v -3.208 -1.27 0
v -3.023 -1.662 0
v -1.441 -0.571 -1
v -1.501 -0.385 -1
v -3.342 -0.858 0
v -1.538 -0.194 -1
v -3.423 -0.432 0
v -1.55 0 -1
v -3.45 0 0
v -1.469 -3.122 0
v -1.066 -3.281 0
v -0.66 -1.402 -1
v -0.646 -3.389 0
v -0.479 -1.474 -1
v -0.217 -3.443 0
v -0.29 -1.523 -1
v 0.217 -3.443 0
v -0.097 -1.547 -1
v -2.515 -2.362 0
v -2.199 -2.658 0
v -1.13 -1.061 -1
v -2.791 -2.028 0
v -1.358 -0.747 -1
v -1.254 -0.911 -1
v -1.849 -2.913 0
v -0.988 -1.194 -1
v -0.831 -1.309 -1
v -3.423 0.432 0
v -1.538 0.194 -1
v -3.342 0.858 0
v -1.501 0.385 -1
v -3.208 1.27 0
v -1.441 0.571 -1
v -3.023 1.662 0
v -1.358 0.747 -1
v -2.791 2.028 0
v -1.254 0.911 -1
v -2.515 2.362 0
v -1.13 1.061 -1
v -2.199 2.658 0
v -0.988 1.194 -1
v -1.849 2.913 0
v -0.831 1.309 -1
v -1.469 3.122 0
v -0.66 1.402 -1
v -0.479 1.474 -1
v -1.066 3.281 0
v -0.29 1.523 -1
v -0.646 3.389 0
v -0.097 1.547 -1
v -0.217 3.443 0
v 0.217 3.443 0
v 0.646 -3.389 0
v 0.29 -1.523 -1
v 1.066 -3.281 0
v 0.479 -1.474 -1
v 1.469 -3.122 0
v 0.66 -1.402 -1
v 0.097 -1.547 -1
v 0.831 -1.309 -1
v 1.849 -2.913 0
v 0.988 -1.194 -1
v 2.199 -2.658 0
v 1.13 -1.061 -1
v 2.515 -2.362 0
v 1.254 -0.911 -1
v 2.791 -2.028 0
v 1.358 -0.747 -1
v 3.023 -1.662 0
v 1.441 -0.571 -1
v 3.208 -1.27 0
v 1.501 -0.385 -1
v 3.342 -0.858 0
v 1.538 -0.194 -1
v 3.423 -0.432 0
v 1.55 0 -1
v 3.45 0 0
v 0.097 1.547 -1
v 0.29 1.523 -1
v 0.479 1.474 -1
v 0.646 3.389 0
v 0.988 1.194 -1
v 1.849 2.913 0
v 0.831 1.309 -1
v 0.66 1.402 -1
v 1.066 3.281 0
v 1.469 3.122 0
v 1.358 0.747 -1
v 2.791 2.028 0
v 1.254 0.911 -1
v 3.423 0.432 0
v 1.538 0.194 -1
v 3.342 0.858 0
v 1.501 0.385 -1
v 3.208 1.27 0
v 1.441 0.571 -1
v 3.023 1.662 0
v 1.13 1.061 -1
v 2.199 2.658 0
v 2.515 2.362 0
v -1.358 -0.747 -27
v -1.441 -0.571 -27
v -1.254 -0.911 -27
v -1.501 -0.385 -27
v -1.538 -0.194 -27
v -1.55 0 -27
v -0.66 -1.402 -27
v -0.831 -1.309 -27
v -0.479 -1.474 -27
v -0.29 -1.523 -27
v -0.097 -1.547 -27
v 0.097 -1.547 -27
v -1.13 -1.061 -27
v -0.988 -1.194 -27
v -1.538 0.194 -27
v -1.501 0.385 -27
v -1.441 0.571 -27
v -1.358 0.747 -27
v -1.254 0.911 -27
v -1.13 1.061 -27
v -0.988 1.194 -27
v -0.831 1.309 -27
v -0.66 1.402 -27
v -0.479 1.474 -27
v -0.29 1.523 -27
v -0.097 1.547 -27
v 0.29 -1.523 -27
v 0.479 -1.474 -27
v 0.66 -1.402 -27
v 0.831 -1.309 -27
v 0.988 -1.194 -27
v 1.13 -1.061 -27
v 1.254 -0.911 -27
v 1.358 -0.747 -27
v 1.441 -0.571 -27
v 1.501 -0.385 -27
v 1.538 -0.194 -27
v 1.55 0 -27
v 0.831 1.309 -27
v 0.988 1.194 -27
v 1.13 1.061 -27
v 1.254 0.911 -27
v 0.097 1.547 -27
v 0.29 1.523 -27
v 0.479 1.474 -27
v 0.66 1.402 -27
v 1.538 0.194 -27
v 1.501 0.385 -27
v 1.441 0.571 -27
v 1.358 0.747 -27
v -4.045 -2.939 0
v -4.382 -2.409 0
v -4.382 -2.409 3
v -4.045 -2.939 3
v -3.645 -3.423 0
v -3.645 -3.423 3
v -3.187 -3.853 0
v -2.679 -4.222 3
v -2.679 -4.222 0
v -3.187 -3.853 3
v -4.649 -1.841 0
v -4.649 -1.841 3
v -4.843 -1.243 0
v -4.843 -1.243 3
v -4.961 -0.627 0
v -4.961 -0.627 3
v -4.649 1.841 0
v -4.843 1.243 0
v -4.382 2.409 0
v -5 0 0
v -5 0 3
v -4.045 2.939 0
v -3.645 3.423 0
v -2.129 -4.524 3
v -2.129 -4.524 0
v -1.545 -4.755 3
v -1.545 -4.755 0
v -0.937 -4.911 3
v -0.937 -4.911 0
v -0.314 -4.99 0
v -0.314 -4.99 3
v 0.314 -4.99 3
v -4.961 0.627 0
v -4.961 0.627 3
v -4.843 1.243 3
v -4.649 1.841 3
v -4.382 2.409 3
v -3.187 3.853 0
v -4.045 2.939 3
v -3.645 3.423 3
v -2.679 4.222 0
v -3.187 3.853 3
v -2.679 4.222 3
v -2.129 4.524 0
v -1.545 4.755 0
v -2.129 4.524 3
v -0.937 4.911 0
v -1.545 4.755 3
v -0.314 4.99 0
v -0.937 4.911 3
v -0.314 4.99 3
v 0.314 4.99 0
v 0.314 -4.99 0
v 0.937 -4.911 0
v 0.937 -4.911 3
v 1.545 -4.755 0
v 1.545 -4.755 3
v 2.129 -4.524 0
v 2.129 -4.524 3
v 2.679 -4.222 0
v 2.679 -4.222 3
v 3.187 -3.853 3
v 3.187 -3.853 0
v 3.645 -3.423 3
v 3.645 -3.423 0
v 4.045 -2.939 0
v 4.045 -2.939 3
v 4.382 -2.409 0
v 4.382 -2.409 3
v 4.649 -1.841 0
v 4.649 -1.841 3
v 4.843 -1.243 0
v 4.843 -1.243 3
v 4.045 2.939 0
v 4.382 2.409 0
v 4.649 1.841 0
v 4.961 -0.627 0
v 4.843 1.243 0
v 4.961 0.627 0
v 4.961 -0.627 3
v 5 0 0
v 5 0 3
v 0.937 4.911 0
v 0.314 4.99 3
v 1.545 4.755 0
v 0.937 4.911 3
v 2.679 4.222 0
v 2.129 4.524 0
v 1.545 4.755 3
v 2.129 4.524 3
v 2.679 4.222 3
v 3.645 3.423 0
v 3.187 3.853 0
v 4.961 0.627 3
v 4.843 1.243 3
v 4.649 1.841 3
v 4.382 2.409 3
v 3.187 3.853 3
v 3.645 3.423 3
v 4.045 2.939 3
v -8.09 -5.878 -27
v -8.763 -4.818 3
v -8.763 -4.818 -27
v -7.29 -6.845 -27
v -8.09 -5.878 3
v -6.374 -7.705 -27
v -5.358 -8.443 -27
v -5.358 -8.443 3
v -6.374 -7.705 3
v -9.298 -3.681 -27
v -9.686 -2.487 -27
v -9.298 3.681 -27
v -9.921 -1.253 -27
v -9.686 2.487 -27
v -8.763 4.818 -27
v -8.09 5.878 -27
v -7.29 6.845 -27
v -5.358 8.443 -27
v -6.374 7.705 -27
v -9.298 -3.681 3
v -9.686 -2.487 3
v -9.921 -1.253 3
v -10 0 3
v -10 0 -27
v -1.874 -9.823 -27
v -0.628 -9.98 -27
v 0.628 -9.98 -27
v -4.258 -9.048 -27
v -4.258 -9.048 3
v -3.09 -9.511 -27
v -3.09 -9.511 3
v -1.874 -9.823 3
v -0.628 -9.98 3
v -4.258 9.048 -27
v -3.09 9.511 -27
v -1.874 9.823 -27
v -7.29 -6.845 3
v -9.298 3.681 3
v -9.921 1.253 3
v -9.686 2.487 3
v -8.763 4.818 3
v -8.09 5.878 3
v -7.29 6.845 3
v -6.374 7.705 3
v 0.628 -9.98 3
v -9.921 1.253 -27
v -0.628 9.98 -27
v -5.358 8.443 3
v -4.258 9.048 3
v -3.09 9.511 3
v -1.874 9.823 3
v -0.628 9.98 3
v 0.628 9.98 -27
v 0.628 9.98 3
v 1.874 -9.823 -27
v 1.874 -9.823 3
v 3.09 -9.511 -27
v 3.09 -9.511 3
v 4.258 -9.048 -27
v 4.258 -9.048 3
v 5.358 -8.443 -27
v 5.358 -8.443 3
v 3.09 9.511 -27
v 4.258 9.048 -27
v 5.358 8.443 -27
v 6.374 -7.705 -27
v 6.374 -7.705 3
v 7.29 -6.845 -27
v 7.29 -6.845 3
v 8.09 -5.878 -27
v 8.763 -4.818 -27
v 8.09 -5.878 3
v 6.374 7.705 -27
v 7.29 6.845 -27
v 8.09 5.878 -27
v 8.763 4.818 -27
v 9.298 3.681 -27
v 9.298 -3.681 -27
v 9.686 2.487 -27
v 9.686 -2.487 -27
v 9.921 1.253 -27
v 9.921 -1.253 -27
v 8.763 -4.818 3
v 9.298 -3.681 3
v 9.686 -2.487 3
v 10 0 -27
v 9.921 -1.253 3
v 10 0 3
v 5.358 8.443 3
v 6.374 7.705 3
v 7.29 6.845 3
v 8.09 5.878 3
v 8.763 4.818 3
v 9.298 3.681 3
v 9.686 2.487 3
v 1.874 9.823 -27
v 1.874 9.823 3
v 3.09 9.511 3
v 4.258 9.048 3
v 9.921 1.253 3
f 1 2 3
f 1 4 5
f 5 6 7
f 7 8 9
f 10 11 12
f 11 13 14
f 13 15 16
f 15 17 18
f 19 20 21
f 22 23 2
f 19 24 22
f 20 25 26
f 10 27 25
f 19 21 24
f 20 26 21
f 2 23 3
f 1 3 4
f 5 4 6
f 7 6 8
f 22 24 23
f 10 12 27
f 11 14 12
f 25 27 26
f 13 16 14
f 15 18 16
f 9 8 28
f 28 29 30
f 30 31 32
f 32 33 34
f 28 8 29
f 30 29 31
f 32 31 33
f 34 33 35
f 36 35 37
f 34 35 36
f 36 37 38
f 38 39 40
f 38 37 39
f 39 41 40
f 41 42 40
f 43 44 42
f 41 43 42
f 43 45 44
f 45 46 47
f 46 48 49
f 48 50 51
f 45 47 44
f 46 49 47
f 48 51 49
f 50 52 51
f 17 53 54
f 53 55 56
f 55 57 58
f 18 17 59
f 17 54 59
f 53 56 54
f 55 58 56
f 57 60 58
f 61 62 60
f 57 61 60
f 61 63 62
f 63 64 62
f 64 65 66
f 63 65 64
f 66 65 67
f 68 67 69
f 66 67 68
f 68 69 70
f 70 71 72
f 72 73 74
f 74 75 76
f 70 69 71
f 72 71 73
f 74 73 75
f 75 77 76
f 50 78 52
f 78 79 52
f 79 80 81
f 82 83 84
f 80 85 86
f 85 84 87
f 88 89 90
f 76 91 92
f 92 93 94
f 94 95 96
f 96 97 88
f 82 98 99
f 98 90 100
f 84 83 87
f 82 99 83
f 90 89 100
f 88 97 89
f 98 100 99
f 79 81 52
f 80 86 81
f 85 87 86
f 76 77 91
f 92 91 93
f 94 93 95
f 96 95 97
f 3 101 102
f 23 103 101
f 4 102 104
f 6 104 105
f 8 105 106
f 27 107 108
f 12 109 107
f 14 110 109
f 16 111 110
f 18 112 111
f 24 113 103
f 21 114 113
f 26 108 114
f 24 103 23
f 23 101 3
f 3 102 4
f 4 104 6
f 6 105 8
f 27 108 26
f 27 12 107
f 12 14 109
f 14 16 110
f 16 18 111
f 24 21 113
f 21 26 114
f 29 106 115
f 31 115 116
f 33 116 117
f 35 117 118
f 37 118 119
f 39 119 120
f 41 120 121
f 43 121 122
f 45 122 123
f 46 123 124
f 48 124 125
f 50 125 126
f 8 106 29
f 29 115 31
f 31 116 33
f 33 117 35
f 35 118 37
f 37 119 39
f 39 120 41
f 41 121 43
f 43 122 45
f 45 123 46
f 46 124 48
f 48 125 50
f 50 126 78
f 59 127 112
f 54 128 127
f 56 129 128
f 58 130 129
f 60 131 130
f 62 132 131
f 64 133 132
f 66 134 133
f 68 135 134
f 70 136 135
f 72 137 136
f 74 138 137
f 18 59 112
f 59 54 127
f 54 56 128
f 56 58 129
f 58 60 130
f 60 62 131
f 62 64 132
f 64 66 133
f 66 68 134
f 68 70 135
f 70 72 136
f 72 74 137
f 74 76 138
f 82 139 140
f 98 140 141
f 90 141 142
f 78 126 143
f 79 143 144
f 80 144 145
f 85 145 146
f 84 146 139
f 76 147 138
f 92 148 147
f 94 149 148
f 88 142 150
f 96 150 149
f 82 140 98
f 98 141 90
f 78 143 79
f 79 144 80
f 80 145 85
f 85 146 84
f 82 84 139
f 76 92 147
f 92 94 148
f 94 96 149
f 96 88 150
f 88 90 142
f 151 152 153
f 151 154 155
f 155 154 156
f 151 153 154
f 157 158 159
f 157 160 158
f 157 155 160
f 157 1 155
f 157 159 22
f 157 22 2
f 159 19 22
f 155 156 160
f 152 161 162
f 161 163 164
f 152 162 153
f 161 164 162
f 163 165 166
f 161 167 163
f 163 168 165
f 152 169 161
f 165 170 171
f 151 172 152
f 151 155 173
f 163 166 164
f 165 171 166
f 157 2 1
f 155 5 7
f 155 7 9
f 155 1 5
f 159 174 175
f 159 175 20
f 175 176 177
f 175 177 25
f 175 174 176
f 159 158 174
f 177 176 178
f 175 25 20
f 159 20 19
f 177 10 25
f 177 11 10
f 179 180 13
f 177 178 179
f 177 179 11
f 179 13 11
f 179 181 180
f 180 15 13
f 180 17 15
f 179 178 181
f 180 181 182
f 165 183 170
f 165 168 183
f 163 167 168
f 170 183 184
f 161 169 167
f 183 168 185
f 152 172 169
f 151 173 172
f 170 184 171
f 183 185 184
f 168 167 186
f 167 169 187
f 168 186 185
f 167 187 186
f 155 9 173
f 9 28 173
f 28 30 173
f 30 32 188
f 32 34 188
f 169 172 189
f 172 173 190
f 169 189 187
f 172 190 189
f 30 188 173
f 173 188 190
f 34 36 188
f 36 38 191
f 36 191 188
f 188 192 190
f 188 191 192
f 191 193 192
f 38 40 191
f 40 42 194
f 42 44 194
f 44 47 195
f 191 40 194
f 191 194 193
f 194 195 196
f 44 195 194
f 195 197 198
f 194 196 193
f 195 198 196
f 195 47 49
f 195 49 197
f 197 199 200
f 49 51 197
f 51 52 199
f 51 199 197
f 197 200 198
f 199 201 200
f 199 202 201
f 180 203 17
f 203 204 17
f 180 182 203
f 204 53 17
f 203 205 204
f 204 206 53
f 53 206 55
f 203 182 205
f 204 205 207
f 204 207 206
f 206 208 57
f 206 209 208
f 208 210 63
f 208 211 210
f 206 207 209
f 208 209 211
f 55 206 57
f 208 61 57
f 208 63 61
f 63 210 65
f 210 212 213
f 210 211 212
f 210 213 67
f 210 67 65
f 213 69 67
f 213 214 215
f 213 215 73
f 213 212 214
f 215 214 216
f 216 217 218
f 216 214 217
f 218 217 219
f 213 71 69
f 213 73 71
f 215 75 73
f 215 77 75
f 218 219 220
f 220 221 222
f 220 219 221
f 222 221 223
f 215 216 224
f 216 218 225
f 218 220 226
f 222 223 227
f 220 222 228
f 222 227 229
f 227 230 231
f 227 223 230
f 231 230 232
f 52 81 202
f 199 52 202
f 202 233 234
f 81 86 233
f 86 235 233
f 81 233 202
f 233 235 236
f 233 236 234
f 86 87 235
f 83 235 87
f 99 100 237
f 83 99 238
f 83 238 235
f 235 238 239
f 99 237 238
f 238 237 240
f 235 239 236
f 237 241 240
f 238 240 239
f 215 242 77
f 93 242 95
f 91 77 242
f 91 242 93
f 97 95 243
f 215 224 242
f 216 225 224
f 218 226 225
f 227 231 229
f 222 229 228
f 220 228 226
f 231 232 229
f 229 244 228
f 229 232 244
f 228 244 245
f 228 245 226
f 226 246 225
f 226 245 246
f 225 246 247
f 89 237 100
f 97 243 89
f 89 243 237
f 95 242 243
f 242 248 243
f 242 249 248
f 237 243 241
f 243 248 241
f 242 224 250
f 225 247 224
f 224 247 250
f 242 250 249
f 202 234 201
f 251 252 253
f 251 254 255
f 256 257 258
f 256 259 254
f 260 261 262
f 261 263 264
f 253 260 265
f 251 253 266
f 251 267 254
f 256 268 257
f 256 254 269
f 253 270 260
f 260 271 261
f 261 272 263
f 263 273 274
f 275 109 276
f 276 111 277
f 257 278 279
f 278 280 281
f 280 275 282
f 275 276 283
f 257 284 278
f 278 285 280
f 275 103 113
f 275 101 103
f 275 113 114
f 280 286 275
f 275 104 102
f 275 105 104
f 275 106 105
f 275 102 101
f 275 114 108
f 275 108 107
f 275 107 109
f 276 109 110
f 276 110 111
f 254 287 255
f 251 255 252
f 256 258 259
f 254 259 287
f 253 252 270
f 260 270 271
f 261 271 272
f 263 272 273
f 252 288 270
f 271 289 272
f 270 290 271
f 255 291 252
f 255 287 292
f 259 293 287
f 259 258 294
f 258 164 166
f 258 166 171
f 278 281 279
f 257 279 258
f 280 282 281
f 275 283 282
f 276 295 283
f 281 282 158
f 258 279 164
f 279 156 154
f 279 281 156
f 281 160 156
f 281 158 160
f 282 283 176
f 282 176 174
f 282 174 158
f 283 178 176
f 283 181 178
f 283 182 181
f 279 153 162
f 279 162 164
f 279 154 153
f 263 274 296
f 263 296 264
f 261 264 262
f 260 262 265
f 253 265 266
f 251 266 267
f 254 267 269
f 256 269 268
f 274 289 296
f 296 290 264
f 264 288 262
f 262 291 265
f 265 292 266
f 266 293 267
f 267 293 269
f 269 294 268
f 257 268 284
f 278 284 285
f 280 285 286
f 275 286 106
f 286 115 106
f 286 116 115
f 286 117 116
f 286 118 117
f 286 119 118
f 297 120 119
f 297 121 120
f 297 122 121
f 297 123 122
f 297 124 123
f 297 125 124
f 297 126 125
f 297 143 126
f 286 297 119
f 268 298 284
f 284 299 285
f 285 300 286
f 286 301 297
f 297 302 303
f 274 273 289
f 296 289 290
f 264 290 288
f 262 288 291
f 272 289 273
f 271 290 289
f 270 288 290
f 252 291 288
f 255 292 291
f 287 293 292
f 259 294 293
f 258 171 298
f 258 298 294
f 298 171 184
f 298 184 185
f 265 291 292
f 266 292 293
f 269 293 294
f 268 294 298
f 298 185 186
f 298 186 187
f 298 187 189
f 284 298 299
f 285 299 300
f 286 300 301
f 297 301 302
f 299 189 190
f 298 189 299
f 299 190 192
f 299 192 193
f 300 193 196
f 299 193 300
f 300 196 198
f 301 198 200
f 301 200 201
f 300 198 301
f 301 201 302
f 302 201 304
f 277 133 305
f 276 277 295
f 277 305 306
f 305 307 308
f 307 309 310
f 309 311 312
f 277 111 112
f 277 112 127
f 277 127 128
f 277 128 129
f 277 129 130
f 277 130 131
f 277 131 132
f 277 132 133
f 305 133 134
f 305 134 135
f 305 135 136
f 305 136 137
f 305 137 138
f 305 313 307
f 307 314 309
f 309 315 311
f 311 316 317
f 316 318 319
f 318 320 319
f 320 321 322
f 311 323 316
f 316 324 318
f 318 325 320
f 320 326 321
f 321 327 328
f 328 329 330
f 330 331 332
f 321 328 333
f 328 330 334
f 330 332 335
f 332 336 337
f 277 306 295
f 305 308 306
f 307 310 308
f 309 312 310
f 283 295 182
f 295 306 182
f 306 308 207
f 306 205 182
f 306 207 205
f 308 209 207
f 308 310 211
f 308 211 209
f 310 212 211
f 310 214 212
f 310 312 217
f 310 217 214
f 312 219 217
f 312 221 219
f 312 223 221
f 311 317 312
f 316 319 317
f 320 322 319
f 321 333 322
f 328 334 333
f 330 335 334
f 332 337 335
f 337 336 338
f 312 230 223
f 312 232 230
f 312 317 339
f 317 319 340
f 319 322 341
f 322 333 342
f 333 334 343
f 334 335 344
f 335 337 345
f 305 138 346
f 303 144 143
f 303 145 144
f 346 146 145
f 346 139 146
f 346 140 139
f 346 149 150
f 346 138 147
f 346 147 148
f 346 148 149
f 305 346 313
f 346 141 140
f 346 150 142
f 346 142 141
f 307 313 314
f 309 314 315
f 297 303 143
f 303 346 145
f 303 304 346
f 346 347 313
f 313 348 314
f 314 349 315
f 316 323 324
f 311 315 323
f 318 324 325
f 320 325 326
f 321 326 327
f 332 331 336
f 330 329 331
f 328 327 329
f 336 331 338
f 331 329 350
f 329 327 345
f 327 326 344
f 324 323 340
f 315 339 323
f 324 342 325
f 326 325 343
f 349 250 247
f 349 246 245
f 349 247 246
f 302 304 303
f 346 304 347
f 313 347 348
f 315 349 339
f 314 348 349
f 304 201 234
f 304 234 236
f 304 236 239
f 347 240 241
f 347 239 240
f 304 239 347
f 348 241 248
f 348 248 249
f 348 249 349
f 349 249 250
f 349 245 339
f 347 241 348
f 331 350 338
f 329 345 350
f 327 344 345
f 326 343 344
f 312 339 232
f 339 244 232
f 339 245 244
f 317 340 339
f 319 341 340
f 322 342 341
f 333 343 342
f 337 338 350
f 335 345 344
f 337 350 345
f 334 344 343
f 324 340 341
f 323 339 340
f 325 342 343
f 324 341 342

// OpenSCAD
$fn = 50;


difference() {
	union() {
		translate(v = [0, 0, -27.0000000000]) {
			cylinder(h = 30, r = 10.0000000000);
		}
	}
	union() {
		translate(v = [0, 0, 0]) {
			rotate(a = [0, 0, 0]) {
				difference() {
					union() {
						translate(v = [0, 0, -30.0000000000]) {
							cylinder(h = 30, r = 1.2500000000);
						}
						translate(v = [0, 0, -1.0000000000]) {
							cylinder(h = 1.0000000000, r1 = 1.5500000000, r2 = 3.4500000000);
						}
						translate(v = [0, 0, -30.0000000000]) {
							cylinder(h = 30, r = 1.5500000000);
						}
						translate(v = [0, 0, -30.0000000000]) {
							cylinder(h = 30, r = 1.2500000000);
						}
					}
					union();
				}
			}
		}
		#cylinder(h = 3, r = 5.0000000000);
	}
}
